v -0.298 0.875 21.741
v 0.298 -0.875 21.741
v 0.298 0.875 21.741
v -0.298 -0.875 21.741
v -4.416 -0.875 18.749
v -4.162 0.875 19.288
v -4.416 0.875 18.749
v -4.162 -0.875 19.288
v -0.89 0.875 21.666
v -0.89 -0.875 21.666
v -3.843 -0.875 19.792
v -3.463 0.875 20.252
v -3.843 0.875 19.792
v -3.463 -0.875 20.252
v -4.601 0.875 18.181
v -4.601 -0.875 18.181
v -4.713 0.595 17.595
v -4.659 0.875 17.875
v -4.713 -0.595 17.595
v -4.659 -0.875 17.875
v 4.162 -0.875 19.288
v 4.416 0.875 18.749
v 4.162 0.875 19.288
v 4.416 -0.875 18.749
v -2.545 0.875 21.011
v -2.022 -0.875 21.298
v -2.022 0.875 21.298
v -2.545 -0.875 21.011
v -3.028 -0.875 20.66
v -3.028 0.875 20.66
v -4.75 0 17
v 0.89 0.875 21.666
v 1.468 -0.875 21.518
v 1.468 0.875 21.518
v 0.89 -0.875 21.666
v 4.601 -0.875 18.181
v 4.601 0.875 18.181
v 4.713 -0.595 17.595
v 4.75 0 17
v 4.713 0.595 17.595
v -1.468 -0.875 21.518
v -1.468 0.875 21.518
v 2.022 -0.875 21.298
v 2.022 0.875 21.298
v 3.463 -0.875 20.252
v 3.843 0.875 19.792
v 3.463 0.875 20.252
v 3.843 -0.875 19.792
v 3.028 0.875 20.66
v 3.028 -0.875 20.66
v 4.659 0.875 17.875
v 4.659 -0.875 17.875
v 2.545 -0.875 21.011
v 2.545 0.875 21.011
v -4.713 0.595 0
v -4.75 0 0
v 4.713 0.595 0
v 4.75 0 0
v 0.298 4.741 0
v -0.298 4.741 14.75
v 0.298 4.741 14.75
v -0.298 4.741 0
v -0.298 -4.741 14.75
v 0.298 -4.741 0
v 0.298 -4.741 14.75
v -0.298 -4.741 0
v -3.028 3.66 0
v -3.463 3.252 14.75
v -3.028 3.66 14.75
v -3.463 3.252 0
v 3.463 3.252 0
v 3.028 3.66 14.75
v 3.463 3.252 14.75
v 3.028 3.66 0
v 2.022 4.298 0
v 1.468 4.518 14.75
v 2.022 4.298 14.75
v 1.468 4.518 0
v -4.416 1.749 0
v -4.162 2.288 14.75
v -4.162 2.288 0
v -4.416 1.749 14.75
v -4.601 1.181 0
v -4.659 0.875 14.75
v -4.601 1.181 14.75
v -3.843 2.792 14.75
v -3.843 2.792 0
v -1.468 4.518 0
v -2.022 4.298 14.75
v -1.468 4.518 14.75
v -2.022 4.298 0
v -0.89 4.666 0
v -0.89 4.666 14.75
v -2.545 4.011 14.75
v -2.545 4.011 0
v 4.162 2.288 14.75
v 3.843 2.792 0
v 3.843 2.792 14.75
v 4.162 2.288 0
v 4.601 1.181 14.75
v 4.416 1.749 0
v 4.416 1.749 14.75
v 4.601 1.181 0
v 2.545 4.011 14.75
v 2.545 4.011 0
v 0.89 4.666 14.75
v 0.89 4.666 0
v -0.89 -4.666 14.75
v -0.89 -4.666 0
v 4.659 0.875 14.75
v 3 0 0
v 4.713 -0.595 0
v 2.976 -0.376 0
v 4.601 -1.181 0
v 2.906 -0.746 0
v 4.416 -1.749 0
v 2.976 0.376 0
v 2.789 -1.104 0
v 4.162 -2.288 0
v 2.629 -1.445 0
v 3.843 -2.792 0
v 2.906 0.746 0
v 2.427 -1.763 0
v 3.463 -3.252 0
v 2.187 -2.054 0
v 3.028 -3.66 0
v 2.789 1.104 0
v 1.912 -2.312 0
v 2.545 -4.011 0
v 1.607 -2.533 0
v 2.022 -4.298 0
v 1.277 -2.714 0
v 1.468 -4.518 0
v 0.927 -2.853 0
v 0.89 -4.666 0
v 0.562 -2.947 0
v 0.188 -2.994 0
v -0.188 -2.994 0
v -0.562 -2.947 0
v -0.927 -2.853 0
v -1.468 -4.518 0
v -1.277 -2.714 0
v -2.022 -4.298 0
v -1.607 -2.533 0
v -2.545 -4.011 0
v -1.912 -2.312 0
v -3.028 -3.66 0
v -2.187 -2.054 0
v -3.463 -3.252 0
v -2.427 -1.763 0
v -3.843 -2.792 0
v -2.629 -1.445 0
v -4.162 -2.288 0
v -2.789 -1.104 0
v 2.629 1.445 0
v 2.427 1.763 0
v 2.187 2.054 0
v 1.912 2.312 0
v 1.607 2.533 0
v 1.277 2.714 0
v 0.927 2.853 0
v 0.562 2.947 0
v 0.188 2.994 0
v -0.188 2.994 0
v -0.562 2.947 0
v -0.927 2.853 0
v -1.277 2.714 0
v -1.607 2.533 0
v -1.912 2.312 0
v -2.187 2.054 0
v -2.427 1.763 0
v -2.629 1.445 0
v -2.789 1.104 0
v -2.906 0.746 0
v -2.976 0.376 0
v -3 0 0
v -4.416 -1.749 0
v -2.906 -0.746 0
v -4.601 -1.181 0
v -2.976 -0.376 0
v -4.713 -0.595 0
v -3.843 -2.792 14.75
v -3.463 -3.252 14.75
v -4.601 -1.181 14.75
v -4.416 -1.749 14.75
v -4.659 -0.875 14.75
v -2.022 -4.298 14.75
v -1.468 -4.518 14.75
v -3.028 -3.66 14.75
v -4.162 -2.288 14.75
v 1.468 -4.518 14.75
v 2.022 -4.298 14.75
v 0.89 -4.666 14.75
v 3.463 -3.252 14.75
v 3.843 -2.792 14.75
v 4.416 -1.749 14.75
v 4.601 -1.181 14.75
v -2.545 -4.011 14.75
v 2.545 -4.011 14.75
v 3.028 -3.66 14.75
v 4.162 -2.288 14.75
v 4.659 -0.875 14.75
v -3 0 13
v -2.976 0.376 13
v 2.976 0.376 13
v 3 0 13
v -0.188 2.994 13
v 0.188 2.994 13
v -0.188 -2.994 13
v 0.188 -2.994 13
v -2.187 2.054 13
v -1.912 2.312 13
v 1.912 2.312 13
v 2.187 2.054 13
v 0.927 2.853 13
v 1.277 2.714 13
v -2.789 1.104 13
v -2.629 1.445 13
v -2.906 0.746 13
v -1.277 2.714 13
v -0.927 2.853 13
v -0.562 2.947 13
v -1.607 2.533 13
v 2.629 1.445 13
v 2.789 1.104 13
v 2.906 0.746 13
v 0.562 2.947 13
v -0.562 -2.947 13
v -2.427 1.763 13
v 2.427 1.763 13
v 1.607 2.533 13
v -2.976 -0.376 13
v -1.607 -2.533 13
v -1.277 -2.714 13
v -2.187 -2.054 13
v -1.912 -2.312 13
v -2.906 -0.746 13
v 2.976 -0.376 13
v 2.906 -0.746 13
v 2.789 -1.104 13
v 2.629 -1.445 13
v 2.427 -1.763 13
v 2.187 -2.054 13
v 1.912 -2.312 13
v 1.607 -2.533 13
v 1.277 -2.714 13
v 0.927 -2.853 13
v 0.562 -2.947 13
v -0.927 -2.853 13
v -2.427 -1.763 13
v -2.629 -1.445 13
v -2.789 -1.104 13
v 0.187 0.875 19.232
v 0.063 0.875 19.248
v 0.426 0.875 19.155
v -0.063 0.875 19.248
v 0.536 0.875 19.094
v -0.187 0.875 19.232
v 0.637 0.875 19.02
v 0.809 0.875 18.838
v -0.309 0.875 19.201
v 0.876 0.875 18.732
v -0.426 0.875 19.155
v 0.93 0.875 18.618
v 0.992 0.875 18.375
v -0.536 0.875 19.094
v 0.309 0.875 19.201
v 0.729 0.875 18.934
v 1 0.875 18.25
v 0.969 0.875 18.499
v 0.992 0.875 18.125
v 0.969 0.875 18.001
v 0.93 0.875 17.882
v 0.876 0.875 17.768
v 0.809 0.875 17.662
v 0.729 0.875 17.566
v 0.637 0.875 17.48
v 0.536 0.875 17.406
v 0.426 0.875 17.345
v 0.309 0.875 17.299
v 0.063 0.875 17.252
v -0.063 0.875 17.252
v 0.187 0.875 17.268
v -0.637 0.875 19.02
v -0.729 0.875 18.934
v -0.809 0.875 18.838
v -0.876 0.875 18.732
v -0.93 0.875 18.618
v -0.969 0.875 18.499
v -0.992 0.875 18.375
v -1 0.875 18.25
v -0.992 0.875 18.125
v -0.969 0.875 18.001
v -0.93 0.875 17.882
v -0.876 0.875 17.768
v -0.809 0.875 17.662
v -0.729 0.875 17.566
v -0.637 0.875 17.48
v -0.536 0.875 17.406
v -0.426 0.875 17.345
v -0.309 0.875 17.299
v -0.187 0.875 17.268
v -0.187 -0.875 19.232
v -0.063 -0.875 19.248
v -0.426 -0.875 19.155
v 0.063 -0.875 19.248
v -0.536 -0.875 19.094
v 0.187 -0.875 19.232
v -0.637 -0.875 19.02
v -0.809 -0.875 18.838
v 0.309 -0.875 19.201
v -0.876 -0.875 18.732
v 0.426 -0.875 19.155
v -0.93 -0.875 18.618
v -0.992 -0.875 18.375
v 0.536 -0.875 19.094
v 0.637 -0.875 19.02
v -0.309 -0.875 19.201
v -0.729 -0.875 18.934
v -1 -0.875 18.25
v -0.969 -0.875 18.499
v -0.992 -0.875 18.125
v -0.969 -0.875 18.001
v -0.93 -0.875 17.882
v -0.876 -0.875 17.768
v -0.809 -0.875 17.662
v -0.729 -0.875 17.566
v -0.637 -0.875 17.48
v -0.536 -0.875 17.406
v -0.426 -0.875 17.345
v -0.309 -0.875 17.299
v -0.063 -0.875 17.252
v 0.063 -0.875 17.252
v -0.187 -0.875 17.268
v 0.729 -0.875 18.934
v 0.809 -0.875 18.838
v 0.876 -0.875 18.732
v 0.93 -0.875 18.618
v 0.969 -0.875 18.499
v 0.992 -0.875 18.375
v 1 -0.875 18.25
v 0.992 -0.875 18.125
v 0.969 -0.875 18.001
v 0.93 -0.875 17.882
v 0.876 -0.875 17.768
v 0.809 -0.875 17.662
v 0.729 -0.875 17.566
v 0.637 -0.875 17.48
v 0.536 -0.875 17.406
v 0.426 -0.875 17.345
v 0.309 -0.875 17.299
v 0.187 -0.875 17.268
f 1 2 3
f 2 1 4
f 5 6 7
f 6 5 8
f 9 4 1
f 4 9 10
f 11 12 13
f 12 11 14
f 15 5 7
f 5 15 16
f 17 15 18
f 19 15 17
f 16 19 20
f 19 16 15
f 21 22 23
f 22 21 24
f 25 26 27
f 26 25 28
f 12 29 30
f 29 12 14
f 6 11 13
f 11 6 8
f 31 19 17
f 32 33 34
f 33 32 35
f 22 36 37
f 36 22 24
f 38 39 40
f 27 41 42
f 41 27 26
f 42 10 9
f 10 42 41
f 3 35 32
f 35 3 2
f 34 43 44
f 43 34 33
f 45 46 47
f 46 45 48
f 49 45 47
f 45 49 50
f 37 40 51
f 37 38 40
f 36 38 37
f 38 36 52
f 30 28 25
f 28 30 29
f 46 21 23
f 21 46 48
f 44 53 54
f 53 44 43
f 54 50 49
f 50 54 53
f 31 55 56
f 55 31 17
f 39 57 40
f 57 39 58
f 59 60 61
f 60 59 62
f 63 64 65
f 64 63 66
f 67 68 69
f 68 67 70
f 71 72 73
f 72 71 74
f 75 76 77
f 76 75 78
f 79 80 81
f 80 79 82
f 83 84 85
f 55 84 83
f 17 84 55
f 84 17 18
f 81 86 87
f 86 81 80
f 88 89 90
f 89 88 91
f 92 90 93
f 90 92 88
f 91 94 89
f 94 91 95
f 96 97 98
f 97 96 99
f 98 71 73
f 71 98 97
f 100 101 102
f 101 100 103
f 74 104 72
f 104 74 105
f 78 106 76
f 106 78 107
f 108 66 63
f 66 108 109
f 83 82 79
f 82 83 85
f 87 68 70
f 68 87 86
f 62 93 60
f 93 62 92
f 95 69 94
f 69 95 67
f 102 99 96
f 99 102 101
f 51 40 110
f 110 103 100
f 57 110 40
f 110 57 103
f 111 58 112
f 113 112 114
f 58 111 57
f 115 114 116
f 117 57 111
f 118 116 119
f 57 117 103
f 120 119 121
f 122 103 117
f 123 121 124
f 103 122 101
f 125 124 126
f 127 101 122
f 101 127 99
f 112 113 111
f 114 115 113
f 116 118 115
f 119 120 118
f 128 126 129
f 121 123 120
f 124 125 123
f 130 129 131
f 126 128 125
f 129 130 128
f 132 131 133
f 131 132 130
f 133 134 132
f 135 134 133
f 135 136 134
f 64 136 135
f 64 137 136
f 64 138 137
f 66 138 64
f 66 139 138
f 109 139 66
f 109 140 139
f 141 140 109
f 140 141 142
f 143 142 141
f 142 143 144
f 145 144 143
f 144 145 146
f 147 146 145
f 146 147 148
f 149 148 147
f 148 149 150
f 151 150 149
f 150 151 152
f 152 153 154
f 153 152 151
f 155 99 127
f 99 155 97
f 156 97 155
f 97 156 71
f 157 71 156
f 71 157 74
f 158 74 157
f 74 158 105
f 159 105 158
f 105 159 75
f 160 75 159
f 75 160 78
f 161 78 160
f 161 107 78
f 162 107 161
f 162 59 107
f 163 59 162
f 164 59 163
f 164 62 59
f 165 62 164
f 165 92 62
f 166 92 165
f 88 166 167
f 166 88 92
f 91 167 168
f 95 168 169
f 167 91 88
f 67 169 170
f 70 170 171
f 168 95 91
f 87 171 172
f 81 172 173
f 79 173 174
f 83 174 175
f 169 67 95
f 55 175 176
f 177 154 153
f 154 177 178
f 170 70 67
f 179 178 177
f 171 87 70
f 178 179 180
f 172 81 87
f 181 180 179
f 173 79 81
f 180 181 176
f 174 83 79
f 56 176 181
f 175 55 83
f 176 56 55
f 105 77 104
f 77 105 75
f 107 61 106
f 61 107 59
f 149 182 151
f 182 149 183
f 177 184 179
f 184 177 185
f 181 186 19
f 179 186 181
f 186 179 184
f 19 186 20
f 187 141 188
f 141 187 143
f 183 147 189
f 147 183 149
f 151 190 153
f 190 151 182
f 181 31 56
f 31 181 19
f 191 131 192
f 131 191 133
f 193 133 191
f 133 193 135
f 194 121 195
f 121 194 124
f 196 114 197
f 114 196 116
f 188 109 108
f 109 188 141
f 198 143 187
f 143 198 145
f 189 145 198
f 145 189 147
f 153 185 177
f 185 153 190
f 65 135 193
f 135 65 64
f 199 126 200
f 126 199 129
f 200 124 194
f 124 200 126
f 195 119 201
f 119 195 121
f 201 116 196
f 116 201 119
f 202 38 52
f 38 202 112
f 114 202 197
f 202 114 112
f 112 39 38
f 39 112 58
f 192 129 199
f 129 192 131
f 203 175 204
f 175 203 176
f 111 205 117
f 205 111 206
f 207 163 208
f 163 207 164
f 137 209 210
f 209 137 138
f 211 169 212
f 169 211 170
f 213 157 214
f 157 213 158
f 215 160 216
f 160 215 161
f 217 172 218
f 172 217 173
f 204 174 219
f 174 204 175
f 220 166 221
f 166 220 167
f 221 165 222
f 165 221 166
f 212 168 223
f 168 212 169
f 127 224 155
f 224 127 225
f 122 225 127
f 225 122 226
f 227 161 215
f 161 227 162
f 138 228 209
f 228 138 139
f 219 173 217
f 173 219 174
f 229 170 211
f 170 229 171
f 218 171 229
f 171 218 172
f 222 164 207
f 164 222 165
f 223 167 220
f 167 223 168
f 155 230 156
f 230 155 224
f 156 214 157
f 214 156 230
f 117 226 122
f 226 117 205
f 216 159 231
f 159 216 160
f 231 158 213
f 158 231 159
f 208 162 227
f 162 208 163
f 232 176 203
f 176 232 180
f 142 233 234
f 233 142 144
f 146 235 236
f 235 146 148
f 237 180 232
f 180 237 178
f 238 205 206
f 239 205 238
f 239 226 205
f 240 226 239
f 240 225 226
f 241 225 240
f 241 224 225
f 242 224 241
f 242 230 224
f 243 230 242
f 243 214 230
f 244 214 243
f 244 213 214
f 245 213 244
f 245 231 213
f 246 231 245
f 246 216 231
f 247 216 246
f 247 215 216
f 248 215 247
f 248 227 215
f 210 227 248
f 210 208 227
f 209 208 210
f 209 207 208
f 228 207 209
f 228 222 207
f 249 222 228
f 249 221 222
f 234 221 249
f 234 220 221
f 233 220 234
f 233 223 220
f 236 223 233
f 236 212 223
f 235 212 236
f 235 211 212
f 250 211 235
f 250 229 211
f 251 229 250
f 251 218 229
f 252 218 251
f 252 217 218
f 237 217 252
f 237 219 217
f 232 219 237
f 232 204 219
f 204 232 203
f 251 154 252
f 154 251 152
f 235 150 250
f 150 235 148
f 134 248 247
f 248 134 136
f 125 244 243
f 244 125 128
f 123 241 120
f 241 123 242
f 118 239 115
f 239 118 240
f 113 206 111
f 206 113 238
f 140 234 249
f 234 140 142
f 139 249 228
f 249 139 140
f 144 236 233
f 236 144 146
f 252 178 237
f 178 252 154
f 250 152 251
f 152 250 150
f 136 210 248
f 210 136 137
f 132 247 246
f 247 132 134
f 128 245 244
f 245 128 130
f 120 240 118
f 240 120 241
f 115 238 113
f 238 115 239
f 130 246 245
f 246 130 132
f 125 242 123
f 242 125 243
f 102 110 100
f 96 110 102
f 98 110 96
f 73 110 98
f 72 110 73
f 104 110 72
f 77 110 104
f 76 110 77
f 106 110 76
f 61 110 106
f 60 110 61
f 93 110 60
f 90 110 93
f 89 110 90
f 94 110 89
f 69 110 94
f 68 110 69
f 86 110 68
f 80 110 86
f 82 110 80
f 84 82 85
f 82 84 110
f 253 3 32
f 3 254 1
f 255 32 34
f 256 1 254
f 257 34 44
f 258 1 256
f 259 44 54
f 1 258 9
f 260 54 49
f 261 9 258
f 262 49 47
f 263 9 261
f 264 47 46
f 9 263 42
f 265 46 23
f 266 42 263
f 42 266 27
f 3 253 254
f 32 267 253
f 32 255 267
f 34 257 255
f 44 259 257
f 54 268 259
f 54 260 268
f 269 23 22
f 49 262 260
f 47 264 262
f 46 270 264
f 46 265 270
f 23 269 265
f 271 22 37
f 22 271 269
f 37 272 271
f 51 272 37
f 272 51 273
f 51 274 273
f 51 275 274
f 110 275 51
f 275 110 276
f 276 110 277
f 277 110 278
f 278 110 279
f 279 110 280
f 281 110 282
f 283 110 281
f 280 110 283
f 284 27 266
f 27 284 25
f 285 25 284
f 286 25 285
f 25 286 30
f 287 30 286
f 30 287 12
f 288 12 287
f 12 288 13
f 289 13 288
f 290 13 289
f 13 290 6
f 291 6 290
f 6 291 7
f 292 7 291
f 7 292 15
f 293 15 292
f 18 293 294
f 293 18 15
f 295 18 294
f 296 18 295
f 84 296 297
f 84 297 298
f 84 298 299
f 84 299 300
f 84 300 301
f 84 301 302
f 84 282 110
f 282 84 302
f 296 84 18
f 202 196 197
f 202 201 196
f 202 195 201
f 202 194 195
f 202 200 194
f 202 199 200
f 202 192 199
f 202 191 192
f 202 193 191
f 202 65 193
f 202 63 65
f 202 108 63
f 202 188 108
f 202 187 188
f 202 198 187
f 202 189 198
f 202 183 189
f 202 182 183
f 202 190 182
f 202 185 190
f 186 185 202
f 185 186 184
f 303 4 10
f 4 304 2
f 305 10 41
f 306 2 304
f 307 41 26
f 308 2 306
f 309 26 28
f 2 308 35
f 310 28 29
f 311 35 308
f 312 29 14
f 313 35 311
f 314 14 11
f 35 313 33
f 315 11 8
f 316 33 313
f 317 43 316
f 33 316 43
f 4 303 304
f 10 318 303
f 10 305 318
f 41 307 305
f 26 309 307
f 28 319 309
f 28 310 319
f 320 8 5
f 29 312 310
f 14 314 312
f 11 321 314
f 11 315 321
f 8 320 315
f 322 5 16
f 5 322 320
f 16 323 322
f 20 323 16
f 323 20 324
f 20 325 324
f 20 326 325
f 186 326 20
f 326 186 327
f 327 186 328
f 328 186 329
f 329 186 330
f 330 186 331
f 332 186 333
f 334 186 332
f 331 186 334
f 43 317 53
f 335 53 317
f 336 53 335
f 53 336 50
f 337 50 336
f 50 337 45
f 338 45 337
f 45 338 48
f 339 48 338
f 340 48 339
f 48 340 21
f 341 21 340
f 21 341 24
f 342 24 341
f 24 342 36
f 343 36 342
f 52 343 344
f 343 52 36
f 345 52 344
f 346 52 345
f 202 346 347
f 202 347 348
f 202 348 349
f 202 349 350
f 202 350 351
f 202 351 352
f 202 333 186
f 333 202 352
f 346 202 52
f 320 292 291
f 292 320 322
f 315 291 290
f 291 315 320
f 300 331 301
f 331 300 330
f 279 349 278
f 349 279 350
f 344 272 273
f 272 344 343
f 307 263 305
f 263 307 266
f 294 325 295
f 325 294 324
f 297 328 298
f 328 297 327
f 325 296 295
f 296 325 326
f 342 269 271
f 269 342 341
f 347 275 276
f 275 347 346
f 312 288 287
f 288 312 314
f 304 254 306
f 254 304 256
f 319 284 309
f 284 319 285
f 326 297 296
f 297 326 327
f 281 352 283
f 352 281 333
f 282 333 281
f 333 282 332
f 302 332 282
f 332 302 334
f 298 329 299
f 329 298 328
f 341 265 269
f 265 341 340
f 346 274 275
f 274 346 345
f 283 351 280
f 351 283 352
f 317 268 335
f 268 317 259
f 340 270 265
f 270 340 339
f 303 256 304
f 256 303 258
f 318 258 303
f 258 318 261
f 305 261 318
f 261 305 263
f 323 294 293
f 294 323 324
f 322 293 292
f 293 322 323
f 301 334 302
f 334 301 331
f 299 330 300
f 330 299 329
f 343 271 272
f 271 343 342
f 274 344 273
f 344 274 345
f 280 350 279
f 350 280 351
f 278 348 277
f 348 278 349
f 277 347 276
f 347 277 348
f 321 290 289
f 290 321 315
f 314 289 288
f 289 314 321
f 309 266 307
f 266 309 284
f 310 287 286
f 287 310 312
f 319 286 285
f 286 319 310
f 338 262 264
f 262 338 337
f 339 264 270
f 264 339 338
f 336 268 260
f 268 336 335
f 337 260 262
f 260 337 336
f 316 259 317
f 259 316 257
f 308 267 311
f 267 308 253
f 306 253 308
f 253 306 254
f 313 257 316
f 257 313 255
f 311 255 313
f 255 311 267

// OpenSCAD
id = 6;
ih = 13;
connH = 7;

wall = 1.75;

od = id + 2 * wall;
oh = ih + wall + connH;

rotate([0, 180, 0])
translate([0, 0, -oh])
difference() {
    cylinder(h = oh, d = od, $fn = 50);
    translate([0, 0, connH + wall])
        cylinder(h = ih + 1, d = id, $fn = 50);
    
    translate([-0.5 * od, wall / 2, -1])
        cube([od, od, connH + 1]);
    rotate([0, 0, 180])
    translate([-0.5 * od, wall / 2, -1])
        cube([od, od, connH + 1]);
    
    translate([0, 0.5 * wall + 1, 0.5 * connH])
    rotate([90, 0, 0])
    cylinder(h = wall + 2, d = 2, $fn = 50);

    translate([0, 0.5 * od, 0.5 * od])
    rotate([90, 0, 0])
    difference() {
        cylinder(h = od, d = 2 * od, $fn = 50);
        cylinder(h = od, d = od, $fn = 50);
        translate([-od/2, 0, 0])
        cube([od, od, od]);
    }
}
